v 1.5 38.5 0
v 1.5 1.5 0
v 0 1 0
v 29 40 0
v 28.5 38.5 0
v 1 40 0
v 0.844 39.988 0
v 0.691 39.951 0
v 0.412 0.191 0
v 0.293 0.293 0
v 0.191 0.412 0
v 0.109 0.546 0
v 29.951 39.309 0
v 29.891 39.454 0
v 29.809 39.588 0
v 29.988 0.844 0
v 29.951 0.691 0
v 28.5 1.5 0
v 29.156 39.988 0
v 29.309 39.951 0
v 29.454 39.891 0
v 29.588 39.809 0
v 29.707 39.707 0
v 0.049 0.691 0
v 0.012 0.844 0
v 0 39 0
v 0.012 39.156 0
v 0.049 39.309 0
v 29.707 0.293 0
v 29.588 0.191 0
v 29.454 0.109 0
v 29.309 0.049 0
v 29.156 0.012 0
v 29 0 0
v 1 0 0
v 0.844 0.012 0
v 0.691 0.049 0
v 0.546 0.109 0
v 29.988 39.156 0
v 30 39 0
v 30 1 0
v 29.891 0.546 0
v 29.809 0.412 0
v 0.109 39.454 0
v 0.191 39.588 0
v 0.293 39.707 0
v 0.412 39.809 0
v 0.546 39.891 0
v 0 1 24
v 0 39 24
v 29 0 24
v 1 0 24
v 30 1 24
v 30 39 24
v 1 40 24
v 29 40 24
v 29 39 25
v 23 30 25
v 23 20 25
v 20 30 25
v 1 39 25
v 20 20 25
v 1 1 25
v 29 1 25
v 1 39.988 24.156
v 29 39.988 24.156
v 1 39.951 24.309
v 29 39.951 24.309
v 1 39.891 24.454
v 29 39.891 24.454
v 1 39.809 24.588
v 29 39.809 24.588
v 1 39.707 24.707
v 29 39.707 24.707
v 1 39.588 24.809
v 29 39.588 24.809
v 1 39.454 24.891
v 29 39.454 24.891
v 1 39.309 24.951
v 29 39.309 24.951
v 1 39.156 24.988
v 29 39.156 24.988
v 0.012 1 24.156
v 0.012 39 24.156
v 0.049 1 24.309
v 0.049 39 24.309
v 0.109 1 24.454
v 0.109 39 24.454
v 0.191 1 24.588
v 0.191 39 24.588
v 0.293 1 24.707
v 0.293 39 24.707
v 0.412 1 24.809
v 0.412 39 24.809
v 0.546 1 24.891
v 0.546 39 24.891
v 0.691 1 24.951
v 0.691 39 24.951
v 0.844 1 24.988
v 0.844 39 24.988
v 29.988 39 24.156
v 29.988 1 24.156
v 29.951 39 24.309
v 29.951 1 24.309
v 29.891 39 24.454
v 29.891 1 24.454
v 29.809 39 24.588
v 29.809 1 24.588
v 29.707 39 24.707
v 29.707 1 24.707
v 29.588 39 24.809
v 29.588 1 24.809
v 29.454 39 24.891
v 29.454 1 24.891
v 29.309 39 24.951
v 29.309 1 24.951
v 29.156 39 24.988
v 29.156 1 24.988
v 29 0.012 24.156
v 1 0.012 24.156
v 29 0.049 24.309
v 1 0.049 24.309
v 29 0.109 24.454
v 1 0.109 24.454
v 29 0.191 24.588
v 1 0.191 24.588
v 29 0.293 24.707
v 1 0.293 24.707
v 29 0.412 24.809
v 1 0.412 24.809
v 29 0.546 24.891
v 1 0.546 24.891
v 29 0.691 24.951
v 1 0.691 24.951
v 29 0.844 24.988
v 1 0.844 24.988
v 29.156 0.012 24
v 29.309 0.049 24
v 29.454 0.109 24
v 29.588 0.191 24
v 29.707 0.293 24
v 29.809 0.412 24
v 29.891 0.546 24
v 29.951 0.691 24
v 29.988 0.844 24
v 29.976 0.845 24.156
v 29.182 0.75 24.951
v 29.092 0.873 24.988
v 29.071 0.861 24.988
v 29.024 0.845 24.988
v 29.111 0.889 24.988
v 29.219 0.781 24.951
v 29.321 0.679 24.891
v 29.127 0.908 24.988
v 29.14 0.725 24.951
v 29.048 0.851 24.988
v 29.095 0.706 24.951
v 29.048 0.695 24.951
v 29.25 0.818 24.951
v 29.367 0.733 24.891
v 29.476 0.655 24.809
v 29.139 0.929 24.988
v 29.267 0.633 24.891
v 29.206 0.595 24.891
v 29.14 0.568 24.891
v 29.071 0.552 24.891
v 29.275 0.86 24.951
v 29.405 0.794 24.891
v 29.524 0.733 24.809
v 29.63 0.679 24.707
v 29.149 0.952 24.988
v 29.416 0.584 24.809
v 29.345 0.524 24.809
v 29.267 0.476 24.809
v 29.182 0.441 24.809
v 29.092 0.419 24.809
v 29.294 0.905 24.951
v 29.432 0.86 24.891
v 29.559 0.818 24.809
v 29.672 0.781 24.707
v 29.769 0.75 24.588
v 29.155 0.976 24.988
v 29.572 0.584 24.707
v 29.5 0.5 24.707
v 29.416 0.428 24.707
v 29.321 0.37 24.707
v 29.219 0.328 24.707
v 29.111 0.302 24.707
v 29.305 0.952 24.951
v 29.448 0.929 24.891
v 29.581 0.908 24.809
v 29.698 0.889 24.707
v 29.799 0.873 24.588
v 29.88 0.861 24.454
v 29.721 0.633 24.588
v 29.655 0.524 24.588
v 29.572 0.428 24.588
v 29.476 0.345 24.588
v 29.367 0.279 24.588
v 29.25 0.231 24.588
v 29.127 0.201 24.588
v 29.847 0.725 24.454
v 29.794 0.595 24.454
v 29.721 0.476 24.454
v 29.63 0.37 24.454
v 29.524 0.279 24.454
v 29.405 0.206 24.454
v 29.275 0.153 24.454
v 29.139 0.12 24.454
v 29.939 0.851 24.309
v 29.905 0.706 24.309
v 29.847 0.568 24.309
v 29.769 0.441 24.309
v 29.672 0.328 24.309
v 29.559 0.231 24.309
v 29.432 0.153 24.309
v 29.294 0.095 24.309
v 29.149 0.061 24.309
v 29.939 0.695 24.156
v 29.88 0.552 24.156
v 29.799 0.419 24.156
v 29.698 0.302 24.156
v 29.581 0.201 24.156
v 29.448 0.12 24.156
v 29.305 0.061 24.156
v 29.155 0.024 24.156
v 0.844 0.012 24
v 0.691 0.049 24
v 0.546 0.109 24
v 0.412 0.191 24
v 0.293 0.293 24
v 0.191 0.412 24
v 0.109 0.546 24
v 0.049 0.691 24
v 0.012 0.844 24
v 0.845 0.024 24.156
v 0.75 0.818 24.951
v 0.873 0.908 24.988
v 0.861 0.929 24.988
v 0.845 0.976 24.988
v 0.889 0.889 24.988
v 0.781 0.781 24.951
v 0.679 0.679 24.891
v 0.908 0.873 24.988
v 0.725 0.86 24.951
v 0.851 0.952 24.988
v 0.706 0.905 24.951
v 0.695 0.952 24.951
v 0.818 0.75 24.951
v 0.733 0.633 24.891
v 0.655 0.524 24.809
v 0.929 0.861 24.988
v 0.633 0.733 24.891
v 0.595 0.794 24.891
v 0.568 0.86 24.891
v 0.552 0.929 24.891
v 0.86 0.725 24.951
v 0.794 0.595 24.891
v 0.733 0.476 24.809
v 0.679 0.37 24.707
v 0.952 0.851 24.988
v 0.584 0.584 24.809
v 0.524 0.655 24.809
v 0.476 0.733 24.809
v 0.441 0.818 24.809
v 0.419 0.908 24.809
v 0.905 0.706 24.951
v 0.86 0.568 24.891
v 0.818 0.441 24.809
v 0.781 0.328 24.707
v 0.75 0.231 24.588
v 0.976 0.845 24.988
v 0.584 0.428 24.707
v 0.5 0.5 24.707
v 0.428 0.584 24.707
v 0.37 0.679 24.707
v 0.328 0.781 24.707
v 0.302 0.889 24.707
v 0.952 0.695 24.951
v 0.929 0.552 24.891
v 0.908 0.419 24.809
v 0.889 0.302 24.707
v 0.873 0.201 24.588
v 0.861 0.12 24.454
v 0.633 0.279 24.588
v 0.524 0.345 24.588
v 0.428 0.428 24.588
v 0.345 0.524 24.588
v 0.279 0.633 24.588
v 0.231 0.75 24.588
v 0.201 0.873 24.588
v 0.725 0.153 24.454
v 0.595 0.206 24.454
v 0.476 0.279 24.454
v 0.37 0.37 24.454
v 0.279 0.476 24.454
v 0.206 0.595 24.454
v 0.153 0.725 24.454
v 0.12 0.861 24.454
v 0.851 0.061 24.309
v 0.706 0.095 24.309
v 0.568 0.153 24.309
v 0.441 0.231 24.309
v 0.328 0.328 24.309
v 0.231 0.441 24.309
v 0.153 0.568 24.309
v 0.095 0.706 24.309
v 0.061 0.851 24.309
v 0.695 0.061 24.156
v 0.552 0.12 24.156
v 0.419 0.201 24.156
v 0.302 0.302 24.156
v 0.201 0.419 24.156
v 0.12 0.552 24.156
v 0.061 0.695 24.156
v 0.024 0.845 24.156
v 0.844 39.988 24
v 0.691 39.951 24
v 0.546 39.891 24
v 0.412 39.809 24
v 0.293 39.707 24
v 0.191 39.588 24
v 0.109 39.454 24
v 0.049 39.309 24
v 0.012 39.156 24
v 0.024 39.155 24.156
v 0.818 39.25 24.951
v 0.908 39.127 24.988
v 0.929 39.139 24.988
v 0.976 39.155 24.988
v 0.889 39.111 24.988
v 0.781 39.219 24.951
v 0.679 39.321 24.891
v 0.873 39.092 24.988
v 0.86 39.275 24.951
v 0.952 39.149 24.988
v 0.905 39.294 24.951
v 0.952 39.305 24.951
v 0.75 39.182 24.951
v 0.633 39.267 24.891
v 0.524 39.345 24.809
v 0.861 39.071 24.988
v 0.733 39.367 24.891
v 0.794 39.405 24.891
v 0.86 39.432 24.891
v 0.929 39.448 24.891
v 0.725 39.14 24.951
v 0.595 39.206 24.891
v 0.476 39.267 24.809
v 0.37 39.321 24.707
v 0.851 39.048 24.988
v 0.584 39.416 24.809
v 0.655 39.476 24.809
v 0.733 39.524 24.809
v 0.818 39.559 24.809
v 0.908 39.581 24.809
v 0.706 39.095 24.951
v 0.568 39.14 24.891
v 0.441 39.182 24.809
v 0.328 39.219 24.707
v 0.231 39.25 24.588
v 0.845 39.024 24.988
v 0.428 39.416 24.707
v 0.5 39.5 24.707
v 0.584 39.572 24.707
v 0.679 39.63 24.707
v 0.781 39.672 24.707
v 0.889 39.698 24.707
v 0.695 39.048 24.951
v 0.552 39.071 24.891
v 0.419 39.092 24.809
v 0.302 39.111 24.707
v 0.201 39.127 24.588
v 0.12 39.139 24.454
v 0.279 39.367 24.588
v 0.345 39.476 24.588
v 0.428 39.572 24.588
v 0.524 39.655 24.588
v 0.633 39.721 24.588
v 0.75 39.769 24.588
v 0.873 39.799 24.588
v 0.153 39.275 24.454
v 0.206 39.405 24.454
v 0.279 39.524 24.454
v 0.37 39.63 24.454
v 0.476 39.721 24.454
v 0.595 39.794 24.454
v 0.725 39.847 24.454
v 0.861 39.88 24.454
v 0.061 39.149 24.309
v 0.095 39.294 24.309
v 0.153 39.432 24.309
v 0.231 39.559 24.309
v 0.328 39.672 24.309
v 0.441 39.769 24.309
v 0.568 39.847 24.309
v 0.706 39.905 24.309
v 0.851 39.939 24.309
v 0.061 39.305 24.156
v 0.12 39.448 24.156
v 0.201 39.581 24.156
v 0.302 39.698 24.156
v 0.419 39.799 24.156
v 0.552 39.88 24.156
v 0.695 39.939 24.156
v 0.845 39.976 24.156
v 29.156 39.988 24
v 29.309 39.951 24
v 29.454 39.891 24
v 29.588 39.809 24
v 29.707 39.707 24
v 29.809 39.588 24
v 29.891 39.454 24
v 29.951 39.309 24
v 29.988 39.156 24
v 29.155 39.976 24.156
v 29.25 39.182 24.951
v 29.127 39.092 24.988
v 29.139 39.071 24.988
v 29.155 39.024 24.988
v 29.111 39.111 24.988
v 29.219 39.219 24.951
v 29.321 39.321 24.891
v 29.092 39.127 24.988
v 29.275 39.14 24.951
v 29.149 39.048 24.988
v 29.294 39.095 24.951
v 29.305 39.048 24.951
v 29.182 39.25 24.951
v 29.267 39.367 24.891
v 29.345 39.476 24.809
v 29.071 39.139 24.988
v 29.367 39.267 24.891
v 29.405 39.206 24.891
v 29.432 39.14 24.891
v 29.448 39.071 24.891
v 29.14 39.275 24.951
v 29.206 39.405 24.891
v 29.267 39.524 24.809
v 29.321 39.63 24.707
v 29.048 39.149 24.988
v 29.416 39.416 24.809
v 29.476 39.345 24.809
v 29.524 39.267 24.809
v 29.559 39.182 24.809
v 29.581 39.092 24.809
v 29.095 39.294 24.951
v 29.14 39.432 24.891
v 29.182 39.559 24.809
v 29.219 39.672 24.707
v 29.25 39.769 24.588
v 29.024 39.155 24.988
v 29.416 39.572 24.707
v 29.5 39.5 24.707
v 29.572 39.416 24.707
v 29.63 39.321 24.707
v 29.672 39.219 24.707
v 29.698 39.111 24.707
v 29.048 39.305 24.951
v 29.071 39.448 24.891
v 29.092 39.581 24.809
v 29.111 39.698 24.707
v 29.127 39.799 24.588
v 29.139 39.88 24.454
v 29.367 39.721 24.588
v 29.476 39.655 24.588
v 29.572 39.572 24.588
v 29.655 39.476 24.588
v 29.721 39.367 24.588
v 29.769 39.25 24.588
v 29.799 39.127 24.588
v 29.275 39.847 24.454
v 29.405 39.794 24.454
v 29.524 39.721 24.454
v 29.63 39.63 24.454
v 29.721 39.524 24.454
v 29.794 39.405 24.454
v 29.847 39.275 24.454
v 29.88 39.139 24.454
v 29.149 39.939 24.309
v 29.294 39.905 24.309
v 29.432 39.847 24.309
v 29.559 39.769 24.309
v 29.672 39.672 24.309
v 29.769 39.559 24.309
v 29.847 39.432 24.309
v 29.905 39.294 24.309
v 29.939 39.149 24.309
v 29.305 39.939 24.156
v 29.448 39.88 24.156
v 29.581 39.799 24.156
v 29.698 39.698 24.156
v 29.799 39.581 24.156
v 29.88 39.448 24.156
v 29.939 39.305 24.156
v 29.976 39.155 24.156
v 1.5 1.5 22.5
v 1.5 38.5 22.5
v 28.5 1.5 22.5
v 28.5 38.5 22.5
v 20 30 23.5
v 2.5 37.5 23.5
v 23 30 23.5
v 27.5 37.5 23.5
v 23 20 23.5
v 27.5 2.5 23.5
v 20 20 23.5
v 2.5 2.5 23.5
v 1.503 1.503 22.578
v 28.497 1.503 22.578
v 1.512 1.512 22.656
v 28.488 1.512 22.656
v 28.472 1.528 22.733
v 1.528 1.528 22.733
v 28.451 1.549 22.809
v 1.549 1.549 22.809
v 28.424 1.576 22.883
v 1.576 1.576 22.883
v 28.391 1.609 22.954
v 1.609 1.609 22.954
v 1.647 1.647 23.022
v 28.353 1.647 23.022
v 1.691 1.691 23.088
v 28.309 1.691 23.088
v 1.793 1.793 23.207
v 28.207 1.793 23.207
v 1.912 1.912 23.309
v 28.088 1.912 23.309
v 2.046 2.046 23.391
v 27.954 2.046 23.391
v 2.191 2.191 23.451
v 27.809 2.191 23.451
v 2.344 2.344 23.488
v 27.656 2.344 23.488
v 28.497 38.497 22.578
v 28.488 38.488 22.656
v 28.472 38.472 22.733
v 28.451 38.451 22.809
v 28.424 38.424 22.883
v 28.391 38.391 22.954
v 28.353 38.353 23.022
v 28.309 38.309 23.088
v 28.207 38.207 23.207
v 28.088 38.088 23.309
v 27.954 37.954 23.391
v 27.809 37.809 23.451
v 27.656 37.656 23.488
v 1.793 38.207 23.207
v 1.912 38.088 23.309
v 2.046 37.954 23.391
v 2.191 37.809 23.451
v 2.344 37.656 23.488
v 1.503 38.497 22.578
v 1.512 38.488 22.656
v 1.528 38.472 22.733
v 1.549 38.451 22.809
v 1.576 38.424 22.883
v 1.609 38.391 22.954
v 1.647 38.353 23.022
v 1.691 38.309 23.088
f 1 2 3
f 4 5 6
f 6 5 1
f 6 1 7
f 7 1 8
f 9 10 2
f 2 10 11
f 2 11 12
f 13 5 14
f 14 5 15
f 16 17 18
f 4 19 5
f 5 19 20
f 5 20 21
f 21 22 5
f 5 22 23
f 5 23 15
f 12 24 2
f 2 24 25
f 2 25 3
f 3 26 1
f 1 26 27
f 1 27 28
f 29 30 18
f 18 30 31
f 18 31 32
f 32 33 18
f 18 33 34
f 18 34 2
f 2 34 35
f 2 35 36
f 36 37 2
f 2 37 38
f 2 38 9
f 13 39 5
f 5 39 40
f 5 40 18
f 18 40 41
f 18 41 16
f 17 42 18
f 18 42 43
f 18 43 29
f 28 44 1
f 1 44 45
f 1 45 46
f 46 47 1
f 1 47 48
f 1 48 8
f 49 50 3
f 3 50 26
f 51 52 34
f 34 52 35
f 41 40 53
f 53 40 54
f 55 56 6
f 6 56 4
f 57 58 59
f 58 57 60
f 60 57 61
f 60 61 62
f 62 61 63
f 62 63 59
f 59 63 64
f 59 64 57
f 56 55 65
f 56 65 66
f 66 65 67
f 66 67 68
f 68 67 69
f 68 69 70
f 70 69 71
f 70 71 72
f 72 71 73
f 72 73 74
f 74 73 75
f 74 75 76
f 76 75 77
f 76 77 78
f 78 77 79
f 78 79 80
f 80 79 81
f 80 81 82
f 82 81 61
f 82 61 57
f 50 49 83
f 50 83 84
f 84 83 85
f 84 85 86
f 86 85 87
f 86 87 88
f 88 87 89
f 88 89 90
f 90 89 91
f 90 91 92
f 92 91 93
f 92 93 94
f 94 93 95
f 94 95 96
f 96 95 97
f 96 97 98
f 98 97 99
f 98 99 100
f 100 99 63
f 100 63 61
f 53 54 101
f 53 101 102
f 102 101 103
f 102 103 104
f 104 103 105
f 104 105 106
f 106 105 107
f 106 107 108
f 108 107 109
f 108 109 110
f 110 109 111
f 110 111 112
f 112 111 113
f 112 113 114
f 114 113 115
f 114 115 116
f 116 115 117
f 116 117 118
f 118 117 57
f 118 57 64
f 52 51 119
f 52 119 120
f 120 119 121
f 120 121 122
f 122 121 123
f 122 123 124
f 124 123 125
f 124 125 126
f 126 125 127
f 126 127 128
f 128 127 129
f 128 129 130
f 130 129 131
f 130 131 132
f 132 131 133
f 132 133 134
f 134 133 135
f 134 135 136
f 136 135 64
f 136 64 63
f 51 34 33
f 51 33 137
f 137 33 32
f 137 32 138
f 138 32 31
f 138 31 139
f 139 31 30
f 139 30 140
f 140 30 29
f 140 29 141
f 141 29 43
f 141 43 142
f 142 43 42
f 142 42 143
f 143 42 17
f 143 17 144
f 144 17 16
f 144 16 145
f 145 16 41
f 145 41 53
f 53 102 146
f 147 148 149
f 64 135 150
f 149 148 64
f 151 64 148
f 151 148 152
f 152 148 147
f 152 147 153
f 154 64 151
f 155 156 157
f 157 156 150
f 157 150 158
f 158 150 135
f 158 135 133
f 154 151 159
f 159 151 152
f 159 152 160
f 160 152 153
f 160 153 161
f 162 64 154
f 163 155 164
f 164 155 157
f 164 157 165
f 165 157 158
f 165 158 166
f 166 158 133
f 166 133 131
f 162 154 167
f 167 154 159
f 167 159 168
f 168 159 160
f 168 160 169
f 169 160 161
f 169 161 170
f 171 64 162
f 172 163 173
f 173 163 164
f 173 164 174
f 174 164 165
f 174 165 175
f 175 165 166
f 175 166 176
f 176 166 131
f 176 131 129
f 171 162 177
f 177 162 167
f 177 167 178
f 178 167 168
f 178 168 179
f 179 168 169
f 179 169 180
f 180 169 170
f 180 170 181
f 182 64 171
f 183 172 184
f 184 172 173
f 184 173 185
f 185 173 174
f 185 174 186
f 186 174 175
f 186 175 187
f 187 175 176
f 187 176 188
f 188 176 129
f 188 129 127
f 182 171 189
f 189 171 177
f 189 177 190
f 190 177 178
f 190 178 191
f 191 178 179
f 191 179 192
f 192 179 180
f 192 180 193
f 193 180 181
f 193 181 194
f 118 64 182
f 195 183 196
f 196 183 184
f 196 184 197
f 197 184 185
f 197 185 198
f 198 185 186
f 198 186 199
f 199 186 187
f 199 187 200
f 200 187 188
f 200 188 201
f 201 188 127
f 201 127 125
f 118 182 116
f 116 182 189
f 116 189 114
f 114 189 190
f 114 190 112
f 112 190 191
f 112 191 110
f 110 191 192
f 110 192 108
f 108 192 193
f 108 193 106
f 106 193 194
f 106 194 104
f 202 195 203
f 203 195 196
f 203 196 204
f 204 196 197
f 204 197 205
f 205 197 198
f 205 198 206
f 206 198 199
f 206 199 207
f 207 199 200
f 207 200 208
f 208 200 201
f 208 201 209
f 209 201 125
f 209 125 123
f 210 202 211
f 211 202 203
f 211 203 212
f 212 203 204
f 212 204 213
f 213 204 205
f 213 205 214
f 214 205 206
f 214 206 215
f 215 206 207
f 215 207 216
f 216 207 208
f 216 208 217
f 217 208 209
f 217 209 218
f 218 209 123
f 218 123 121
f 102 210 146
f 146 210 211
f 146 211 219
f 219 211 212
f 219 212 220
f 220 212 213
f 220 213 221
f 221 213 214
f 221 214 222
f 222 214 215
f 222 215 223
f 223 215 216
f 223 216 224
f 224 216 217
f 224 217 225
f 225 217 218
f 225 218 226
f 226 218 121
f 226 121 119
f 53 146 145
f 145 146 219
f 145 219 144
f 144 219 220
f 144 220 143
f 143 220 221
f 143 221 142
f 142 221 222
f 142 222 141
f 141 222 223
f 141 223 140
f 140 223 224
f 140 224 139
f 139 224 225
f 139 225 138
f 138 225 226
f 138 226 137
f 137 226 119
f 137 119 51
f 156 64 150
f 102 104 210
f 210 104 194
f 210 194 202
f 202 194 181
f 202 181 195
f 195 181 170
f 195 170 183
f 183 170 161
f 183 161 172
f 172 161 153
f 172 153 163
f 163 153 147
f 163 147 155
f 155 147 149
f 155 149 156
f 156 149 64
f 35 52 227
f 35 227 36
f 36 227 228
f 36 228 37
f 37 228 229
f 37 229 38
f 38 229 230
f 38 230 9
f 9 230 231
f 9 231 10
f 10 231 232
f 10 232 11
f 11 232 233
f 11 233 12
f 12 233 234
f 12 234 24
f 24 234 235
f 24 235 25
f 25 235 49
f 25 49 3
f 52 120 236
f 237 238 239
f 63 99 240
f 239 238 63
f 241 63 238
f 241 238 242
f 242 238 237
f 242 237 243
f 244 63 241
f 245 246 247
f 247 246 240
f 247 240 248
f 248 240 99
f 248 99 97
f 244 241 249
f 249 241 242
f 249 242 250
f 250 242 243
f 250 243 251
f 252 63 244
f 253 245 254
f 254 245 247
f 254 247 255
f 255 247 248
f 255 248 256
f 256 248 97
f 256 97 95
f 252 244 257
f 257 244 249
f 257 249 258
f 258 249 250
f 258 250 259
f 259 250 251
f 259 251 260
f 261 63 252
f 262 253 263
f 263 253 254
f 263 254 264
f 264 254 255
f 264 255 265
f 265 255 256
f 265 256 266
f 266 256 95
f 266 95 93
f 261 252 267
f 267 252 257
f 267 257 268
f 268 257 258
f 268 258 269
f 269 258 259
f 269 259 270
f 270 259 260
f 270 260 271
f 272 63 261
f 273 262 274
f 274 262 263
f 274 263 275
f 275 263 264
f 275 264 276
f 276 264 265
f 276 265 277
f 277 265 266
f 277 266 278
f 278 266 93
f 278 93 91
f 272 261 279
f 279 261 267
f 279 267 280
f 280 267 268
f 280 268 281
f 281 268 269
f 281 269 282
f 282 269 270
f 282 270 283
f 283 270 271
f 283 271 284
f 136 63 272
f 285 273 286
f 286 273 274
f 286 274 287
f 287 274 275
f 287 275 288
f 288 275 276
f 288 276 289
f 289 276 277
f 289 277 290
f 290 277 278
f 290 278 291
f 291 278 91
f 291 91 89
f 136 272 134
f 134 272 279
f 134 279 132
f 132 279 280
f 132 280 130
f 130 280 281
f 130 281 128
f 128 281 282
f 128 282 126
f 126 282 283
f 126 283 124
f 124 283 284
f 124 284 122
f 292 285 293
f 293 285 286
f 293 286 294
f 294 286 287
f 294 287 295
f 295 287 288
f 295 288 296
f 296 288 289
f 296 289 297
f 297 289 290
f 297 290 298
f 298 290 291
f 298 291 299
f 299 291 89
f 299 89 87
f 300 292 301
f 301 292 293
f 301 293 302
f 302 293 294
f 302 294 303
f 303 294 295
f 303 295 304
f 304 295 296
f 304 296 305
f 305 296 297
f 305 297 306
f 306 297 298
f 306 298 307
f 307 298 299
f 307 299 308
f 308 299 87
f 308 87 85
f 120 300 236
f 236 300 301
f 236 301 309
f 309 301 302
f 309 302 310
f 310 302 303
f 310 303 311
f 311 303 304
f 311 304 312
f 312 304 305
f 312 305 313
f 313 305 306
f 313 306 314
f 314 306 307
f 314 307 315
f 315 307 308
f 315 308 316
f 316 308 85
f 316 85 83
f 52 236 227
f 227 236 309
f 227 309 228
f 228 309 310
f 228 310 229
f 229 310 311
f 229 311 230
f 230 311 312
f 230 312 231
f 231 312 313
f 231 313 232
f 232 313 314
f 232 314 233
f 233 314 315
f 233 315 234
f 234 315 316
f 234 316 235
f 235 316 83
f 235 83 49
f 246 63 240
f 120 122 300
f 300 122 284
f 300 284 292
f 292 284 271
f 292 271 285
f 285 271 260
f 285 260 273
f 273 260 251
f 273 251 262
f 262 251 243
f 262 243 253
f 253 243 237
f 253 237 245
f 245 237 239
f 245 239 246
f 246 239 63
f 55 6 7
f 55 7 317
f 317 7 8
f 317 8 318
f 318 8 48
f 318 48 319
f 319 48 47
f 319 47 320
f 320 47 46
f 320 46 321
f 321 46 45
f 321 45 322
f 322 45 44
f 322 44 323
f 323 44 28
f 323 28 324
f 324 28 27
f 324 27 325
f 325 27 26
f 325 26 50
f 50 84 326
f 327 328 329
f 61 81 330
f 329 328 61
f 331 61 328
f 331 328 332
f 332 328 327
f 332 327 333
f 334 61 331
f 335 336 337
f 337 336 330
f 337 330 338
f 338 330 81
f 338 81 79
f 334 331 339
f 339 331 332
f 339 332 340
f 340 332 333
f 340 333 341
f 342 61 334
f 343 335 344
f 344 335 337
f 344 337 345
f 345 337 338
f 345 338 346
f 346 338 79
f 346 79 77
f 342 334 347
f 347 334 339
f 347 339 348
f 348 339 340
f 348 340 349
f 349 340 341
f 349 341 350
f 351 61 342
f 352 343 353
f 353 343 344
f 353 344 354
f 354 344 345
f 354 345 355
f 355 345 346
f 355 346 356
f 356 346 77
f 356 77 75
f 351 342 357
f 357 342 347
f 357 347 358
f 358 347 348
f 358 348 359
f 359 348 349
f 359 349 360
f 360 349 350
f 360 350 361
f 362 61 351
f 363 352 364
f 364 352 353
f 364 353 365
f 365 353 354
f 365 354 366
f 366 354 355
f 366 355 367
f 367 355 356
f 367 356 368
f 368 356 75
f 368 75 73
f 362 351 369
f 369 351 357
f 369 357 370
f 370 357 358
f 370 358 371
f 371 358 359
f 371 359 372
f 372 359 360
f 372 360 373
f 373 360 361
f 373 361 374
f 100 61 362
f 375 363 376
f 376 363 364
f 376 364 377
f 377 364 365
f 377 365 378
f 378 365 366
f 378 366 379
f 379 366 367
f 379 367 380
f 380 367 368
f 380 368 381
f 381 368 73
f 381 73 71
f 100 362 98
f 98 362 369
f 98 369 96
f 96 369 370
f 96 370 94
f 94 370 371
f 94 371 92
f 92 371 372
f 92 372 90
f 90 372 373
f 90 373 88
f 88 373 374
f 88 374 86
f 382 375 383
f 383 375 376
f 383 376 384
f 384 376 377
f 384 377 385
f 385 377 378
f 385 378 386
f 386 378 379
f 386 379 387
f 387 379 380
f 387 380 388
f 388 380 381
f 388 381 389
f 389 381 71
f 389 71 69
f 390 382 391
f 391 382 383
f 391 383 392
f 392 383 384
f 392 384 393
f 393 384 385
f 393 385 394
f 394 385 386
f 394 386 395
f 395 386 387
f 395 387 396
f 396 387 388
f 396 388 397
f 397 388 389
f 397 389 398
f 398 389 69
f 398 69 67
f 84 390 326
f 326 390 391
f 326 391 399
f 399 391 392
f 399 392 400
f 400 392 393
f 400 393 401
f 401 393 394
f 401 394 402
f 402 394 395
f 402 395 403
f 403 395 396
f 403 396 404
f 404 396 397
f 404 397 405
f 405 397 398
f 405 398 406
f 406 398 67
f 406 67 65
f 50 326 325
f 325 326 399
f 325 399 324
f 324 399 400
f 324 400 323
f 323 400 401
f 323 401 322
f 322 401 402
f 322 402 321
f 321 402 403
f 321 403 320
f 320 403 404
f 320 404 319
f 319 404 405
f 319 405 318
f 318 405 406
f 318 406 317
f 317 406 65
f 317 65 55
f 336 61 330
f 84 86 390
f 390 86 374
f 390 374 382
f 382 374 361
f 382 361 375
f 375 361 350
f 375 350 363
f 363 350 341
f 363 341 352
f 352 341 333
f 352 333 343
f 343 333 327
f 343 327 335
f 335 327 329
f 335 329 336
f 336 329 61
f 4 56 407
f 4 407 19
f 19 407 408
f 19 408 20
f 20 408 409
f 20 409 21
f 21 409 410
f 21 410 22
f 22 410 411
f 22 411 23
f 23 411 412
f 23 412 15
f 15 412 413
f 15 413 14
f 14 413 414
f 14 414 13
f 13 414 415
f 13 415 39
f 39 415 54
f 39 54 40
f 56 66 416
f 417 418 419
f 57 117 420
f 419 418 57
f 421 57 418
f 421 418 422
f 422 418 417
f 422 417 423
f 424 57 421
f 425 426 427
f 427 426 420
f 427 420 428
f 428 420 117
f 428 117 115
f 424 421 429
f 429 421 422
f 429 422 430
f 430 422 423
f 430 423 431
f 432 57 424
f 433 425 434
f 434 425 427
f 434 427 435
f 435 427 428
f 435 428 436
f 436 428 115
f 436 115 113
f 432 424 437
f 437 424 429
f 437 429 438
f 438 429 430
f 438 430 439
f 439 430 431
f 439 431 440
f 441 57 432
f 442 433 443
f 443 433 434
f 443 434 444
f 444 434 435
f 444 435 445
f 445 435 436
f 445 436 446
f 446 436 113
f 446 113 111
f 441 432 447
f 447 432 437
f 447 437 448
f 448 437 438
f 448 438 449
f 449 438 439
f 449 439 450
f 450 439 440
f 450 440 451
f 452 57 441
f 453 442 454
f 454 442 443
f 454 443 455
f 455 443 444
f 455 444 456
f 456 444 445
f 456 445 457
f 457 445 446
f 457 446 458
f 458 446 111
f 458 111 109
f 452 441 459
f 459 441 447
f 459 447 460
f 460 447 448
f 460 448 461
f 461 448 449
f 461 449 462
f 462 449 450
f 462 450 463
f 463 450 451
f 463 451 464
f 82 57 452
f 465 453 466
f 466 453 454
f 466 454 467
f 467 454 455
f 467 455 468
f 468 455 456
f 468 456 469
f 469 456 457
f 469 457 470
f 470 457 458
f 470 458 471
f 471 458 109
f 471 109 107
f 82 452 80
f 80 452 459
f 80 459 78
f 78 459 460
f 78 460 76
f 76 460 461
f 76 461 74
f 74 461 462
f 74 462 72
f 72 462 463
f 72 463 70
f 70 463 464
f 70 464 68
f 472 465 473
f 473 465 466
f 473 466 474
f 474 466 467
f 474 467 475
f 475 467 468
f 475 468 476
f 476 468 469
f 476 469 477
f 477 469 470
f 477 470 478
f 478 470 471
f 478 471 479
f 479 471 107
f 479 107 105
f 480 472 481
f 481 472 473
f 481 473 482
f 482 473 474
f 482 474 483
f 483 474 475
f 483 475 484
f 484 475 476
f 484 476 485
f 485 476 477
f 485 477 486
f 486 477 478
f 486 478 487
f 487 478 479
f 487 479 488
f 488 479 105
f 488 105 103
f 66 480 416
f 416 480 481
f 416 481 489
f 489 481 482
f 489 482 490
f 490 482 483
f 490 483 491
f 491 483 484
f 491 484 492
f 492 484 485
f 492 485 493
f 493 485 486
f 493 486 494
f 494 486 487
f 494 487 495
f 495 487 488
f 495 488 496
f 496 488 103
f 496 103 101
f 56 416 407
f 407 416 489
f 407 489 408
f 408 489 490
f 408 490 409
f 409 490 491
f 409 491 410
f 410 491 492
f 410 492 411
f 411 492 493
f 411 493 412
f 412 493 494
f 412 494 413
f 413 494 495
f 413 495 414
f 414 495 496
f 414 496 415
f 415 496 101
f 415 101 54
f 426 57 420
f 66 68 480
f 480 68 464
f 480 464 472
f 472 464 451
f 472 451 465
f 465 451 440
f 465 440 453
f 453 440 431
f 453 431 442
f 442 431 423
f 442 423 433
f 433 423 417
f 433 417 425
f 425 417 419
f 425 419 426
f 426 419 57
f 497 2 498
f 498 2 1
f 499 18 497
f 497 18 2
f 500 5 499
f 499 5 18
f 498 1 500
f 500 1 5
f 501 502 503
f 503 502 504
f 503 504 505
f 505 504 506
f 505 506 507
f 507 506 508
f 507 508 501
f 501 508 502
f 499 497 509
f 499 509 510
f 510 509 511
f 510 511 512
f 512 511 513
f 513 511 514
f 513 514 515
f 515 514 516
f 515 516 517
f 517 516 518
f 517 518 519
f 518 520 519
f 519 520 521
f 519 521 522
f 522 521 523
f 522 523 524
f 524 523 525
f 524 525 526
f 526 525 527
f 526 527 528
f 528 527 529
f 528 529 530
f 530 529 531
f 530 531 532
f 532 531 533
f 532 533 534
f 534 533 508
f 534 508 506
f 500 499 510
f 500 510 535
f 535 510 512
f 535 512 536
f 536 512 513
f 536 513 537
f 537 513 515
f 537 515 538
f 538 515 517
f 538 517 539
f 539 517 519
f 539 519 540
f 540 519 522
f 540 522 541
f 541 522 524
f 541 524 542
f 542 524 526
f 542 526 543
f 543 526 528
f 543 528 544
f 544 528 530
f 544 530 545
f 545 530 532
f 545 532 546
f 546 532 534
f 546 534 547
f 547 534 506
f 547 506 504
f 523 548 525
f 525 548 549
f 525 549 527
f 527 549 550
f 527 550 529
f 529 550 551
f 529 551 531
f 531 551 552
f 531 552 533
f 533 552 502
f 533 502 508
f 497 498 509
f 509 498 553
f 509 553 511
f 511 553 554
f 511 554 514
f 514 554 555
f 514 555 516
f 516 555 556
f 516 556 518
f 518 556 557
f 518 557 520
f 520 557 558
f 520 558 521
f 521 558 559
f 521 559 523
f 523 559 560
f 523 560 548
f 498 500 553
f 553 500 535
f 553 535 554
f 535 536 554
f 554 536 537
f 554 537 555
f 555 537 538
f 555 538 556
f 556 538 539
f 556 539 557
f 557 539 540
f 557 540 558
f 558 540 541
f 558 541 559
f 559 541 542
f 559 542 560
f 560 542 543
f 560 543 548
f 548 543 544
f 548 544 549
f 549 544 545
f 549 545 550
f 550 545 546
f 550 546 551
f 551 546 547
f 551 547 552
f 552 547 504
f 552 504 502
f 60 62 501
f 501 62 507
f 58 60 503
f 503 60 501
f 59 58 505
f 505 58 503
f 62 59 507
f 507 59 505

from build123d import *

# Parameters (mm, degrees)
SKETCH2_W           = 30
SKETCH2_H           = 40
BOSS_EXTRUDE2_DEPTH = 25
FILLET2_R           = 1
FILLET3_R           = 1
SHELL1_START        = 1.5
SHELL1_OUTLINE_W    = 37
SHELL1_OUTLINE_H    = 23.5
SHELL1_DEPTH        = 27
FILLET4_R           = 1
SKETCH5_W           = 3
SKETCH5_H           = 10
CUT_EXTRUDE1_DEPTH  = 56.901699437


# Read off the part's stored shape, not the designer's step: Shell1
with BuildPart() as part:
    # Sketch2 → Boss-Extrude2 (new body)
    with BuildSketch(Plane.XY):
        with Locations((15, 20)):
            Rectangle(SKETCH2_W, SKETCH2_H)
    extrude(amount=BOSS_EXTRUDE2_DEPTH)

    # Fillet2
    fillet2_edges = [part.edges().sort_by_distance(p)[0] for p in [
        (30, 20, 25),
        (15, 0, 25),
        (0, 20, 25),
        (15, 40, 25),
    ]]
    fillet(fillet2_edges, radius=FILLET2_R)

    # Fillet3
    # the kernel refuses this fillet: 1 mm, written as the material it takes off along each edge
    with BuildSketch(Plane(origin=(1, 39, 24), x_dir=(0, 1, 0), z_dir=(-1, 0, 0))) as fillet3_piece_1_section:
        Polygon((0, 0), (FILLET3_R, 0), (FILLET3_R, -FILLET3_R), (0, -FILLET3_R), align=None)
    fillet3_piece_1 = extrude(amount=FILLET3_R, mode=Mode.PRIVATE)
    fillet3_piece_1 = fillet3_piece_1 - Plane(origin=(1, 39, 24), x_dir=(0, -0.7071067811865475, -0.7071067811865475), z_dir=(-1, 0, 0)) * Sphere(FILLET3_R, mode=Mode.PRIVATE)
    add(fillet3_piece_1, mode=Mode.SUBTRACT)
    with BuildSketch(Plane(origin=(29, 39, 24), x_dir=(0, 1, 0), z_dir=(1, 0, 0))) as fillet3_piece_2_section:
        Polygon((0, 0), (FILLET3_R, 0), (FILLET3_R, FILLET3_R), (0, FILLET3_R), align=None)
    fillet3_piece_2 = extrude(amount=FILLET3_R, mode=Mode.PRIVATE)
    fillet3_piece_2 = fillet3_piece_2 - Plane(origin=(29, 39, 24), x_dir=(0, -0.7071067811865475, -0.7071067811865475), z_dir=(1, 0, 0)) * Sphere(FILLET3_R, mode=Mode.PRIVATE)
    add(fillet3_piece_2, mode=Mode.SUBTRACT)
    with BuildSketch(Plane(origin=(1, 1, 24), x_dir=(-1, 0, 0), z_dir=(0, -1, 0))) as fillet3_piece_3_section:
        Polygon((0, 0), (FILLET3_R, 0), (FILLET3_R, -FILLET3_R), (0, -FILLET3_R), align=None)
    fillet3_piece_3 = extrude(amount=FILLET3_R, mode=Mode.PRIVATE)
    fillet3_piece_3 = fillet3_piece_3 - Plane(origin=(1, 1, 24), x_dir=(0.7071067811865475, 0, -0.7071067811865475), z_dir=(0, -1, 0)) * Sphere(FILLET3_R, mode=Mode.PRIVATE)
    add(fillet3_piece_3, mode=Mode.SUBTRACT)
    with BuildSketch(Plane(origin=(29, 1, 24), x_dir=(1, 0, 0), z_dir=(0, -1, 0))) as fillet3_piece_4_section:
        Polygon((0, 0), (FILLET3_R, 0), (FILLET3_R, FILLET3_R), (0, FILLET3_R), align=None)
    fillet3_piece_4 = extrude(amount=FILLET3_R, mode=Mode.PRIVATE)
    fillet3_piece_4 = fillet3_piece_4 - Plane(origin=(29, 1, 24), x_dir=(-0.7071067811865475, 0, -0.7071067811865475), z_dir=(0, -1, 0)) * Sphere(FILLET3_R, mode=Mode.PRIVATE)
    add(fillet3_piece_4, mode=Mode.SUBTRACT)
    with BuildSketch(Plane(origin=(30, 0, -2.5), x_dir=(-1, 0, 0), z_dir=(0, 0, 1)), Plane(origin=(30, 40, -2.5), x_dir=(0, -1, 0), z_dir=(0, 0, 1))) as fillet3_piece_5:
        with BuildLine():
            CenterArc((FILLET3_R, -FILLET3_R), FILLET3_R, 90, 90)
            Line((0, -FILLET3_R), (0, 0))
            Line((0, 0), (FILLET3_R, 0))
        make_face()
    extrude(amount=26.5, mode=Mode.SUBTRACT)
    with BuildSketch(Plane(origin=(0, 0, -2.5), x_dir=(1, 0, 0), z_dir=(0, 0, 1)), Plane(origin=(0, 40, -2.5), x_dir=(0, -1, 0), z_dir=(0, 0, 1))) as fillet3_piece_6:
        with BuildLine():
            CenterArc((FILLET3_R, FILLET3_R), FILLET3_R, 180, 90)
            Line((0, FILLET3_R), (0, 0))
            Line((0, 0), (FILLET3_R, 0))
        make_face()
    extrude(amount=26.5, mode=Mode.SUBTRACT)

    # Shell1 outline → Shell1 (cut)
    with BuildSketch(Plane.YZ.offset(SHELL1_START)):
        with Locations((20, 11.75)):
            Rectangle(SHELL1_OUTLINE_W, SHELL1_OUTLINE_H)
    extrude(amount=SHELL1_DEPTH, mode=Mode.SUBTRACT)

    # Fillet4
    fillet4_edges = [part.edges().sort_by_distance(p)[0] for p in [
        (28.5, 20, 23.5),
        (1.5, 20, 23.5),
        (15, 1.5, 23.5),
        (15, 38.5, 23.5),
    ]]
    fillet(fillet4_edges, radius=FILLET4_R)

    # Sketch5 → Cut-Extrude1 (cut, through all)
    with BuildSketch(Plane.XY.offset(25)):
        with Locations((21.5, 25)):
            Rectangle(SKETCH5_W, SKETCH5_H)
    extrude(amount=-CUT_EXTRUDE1_DEPTH, mode=Mode.SUBTRACT)


solid = part.part
